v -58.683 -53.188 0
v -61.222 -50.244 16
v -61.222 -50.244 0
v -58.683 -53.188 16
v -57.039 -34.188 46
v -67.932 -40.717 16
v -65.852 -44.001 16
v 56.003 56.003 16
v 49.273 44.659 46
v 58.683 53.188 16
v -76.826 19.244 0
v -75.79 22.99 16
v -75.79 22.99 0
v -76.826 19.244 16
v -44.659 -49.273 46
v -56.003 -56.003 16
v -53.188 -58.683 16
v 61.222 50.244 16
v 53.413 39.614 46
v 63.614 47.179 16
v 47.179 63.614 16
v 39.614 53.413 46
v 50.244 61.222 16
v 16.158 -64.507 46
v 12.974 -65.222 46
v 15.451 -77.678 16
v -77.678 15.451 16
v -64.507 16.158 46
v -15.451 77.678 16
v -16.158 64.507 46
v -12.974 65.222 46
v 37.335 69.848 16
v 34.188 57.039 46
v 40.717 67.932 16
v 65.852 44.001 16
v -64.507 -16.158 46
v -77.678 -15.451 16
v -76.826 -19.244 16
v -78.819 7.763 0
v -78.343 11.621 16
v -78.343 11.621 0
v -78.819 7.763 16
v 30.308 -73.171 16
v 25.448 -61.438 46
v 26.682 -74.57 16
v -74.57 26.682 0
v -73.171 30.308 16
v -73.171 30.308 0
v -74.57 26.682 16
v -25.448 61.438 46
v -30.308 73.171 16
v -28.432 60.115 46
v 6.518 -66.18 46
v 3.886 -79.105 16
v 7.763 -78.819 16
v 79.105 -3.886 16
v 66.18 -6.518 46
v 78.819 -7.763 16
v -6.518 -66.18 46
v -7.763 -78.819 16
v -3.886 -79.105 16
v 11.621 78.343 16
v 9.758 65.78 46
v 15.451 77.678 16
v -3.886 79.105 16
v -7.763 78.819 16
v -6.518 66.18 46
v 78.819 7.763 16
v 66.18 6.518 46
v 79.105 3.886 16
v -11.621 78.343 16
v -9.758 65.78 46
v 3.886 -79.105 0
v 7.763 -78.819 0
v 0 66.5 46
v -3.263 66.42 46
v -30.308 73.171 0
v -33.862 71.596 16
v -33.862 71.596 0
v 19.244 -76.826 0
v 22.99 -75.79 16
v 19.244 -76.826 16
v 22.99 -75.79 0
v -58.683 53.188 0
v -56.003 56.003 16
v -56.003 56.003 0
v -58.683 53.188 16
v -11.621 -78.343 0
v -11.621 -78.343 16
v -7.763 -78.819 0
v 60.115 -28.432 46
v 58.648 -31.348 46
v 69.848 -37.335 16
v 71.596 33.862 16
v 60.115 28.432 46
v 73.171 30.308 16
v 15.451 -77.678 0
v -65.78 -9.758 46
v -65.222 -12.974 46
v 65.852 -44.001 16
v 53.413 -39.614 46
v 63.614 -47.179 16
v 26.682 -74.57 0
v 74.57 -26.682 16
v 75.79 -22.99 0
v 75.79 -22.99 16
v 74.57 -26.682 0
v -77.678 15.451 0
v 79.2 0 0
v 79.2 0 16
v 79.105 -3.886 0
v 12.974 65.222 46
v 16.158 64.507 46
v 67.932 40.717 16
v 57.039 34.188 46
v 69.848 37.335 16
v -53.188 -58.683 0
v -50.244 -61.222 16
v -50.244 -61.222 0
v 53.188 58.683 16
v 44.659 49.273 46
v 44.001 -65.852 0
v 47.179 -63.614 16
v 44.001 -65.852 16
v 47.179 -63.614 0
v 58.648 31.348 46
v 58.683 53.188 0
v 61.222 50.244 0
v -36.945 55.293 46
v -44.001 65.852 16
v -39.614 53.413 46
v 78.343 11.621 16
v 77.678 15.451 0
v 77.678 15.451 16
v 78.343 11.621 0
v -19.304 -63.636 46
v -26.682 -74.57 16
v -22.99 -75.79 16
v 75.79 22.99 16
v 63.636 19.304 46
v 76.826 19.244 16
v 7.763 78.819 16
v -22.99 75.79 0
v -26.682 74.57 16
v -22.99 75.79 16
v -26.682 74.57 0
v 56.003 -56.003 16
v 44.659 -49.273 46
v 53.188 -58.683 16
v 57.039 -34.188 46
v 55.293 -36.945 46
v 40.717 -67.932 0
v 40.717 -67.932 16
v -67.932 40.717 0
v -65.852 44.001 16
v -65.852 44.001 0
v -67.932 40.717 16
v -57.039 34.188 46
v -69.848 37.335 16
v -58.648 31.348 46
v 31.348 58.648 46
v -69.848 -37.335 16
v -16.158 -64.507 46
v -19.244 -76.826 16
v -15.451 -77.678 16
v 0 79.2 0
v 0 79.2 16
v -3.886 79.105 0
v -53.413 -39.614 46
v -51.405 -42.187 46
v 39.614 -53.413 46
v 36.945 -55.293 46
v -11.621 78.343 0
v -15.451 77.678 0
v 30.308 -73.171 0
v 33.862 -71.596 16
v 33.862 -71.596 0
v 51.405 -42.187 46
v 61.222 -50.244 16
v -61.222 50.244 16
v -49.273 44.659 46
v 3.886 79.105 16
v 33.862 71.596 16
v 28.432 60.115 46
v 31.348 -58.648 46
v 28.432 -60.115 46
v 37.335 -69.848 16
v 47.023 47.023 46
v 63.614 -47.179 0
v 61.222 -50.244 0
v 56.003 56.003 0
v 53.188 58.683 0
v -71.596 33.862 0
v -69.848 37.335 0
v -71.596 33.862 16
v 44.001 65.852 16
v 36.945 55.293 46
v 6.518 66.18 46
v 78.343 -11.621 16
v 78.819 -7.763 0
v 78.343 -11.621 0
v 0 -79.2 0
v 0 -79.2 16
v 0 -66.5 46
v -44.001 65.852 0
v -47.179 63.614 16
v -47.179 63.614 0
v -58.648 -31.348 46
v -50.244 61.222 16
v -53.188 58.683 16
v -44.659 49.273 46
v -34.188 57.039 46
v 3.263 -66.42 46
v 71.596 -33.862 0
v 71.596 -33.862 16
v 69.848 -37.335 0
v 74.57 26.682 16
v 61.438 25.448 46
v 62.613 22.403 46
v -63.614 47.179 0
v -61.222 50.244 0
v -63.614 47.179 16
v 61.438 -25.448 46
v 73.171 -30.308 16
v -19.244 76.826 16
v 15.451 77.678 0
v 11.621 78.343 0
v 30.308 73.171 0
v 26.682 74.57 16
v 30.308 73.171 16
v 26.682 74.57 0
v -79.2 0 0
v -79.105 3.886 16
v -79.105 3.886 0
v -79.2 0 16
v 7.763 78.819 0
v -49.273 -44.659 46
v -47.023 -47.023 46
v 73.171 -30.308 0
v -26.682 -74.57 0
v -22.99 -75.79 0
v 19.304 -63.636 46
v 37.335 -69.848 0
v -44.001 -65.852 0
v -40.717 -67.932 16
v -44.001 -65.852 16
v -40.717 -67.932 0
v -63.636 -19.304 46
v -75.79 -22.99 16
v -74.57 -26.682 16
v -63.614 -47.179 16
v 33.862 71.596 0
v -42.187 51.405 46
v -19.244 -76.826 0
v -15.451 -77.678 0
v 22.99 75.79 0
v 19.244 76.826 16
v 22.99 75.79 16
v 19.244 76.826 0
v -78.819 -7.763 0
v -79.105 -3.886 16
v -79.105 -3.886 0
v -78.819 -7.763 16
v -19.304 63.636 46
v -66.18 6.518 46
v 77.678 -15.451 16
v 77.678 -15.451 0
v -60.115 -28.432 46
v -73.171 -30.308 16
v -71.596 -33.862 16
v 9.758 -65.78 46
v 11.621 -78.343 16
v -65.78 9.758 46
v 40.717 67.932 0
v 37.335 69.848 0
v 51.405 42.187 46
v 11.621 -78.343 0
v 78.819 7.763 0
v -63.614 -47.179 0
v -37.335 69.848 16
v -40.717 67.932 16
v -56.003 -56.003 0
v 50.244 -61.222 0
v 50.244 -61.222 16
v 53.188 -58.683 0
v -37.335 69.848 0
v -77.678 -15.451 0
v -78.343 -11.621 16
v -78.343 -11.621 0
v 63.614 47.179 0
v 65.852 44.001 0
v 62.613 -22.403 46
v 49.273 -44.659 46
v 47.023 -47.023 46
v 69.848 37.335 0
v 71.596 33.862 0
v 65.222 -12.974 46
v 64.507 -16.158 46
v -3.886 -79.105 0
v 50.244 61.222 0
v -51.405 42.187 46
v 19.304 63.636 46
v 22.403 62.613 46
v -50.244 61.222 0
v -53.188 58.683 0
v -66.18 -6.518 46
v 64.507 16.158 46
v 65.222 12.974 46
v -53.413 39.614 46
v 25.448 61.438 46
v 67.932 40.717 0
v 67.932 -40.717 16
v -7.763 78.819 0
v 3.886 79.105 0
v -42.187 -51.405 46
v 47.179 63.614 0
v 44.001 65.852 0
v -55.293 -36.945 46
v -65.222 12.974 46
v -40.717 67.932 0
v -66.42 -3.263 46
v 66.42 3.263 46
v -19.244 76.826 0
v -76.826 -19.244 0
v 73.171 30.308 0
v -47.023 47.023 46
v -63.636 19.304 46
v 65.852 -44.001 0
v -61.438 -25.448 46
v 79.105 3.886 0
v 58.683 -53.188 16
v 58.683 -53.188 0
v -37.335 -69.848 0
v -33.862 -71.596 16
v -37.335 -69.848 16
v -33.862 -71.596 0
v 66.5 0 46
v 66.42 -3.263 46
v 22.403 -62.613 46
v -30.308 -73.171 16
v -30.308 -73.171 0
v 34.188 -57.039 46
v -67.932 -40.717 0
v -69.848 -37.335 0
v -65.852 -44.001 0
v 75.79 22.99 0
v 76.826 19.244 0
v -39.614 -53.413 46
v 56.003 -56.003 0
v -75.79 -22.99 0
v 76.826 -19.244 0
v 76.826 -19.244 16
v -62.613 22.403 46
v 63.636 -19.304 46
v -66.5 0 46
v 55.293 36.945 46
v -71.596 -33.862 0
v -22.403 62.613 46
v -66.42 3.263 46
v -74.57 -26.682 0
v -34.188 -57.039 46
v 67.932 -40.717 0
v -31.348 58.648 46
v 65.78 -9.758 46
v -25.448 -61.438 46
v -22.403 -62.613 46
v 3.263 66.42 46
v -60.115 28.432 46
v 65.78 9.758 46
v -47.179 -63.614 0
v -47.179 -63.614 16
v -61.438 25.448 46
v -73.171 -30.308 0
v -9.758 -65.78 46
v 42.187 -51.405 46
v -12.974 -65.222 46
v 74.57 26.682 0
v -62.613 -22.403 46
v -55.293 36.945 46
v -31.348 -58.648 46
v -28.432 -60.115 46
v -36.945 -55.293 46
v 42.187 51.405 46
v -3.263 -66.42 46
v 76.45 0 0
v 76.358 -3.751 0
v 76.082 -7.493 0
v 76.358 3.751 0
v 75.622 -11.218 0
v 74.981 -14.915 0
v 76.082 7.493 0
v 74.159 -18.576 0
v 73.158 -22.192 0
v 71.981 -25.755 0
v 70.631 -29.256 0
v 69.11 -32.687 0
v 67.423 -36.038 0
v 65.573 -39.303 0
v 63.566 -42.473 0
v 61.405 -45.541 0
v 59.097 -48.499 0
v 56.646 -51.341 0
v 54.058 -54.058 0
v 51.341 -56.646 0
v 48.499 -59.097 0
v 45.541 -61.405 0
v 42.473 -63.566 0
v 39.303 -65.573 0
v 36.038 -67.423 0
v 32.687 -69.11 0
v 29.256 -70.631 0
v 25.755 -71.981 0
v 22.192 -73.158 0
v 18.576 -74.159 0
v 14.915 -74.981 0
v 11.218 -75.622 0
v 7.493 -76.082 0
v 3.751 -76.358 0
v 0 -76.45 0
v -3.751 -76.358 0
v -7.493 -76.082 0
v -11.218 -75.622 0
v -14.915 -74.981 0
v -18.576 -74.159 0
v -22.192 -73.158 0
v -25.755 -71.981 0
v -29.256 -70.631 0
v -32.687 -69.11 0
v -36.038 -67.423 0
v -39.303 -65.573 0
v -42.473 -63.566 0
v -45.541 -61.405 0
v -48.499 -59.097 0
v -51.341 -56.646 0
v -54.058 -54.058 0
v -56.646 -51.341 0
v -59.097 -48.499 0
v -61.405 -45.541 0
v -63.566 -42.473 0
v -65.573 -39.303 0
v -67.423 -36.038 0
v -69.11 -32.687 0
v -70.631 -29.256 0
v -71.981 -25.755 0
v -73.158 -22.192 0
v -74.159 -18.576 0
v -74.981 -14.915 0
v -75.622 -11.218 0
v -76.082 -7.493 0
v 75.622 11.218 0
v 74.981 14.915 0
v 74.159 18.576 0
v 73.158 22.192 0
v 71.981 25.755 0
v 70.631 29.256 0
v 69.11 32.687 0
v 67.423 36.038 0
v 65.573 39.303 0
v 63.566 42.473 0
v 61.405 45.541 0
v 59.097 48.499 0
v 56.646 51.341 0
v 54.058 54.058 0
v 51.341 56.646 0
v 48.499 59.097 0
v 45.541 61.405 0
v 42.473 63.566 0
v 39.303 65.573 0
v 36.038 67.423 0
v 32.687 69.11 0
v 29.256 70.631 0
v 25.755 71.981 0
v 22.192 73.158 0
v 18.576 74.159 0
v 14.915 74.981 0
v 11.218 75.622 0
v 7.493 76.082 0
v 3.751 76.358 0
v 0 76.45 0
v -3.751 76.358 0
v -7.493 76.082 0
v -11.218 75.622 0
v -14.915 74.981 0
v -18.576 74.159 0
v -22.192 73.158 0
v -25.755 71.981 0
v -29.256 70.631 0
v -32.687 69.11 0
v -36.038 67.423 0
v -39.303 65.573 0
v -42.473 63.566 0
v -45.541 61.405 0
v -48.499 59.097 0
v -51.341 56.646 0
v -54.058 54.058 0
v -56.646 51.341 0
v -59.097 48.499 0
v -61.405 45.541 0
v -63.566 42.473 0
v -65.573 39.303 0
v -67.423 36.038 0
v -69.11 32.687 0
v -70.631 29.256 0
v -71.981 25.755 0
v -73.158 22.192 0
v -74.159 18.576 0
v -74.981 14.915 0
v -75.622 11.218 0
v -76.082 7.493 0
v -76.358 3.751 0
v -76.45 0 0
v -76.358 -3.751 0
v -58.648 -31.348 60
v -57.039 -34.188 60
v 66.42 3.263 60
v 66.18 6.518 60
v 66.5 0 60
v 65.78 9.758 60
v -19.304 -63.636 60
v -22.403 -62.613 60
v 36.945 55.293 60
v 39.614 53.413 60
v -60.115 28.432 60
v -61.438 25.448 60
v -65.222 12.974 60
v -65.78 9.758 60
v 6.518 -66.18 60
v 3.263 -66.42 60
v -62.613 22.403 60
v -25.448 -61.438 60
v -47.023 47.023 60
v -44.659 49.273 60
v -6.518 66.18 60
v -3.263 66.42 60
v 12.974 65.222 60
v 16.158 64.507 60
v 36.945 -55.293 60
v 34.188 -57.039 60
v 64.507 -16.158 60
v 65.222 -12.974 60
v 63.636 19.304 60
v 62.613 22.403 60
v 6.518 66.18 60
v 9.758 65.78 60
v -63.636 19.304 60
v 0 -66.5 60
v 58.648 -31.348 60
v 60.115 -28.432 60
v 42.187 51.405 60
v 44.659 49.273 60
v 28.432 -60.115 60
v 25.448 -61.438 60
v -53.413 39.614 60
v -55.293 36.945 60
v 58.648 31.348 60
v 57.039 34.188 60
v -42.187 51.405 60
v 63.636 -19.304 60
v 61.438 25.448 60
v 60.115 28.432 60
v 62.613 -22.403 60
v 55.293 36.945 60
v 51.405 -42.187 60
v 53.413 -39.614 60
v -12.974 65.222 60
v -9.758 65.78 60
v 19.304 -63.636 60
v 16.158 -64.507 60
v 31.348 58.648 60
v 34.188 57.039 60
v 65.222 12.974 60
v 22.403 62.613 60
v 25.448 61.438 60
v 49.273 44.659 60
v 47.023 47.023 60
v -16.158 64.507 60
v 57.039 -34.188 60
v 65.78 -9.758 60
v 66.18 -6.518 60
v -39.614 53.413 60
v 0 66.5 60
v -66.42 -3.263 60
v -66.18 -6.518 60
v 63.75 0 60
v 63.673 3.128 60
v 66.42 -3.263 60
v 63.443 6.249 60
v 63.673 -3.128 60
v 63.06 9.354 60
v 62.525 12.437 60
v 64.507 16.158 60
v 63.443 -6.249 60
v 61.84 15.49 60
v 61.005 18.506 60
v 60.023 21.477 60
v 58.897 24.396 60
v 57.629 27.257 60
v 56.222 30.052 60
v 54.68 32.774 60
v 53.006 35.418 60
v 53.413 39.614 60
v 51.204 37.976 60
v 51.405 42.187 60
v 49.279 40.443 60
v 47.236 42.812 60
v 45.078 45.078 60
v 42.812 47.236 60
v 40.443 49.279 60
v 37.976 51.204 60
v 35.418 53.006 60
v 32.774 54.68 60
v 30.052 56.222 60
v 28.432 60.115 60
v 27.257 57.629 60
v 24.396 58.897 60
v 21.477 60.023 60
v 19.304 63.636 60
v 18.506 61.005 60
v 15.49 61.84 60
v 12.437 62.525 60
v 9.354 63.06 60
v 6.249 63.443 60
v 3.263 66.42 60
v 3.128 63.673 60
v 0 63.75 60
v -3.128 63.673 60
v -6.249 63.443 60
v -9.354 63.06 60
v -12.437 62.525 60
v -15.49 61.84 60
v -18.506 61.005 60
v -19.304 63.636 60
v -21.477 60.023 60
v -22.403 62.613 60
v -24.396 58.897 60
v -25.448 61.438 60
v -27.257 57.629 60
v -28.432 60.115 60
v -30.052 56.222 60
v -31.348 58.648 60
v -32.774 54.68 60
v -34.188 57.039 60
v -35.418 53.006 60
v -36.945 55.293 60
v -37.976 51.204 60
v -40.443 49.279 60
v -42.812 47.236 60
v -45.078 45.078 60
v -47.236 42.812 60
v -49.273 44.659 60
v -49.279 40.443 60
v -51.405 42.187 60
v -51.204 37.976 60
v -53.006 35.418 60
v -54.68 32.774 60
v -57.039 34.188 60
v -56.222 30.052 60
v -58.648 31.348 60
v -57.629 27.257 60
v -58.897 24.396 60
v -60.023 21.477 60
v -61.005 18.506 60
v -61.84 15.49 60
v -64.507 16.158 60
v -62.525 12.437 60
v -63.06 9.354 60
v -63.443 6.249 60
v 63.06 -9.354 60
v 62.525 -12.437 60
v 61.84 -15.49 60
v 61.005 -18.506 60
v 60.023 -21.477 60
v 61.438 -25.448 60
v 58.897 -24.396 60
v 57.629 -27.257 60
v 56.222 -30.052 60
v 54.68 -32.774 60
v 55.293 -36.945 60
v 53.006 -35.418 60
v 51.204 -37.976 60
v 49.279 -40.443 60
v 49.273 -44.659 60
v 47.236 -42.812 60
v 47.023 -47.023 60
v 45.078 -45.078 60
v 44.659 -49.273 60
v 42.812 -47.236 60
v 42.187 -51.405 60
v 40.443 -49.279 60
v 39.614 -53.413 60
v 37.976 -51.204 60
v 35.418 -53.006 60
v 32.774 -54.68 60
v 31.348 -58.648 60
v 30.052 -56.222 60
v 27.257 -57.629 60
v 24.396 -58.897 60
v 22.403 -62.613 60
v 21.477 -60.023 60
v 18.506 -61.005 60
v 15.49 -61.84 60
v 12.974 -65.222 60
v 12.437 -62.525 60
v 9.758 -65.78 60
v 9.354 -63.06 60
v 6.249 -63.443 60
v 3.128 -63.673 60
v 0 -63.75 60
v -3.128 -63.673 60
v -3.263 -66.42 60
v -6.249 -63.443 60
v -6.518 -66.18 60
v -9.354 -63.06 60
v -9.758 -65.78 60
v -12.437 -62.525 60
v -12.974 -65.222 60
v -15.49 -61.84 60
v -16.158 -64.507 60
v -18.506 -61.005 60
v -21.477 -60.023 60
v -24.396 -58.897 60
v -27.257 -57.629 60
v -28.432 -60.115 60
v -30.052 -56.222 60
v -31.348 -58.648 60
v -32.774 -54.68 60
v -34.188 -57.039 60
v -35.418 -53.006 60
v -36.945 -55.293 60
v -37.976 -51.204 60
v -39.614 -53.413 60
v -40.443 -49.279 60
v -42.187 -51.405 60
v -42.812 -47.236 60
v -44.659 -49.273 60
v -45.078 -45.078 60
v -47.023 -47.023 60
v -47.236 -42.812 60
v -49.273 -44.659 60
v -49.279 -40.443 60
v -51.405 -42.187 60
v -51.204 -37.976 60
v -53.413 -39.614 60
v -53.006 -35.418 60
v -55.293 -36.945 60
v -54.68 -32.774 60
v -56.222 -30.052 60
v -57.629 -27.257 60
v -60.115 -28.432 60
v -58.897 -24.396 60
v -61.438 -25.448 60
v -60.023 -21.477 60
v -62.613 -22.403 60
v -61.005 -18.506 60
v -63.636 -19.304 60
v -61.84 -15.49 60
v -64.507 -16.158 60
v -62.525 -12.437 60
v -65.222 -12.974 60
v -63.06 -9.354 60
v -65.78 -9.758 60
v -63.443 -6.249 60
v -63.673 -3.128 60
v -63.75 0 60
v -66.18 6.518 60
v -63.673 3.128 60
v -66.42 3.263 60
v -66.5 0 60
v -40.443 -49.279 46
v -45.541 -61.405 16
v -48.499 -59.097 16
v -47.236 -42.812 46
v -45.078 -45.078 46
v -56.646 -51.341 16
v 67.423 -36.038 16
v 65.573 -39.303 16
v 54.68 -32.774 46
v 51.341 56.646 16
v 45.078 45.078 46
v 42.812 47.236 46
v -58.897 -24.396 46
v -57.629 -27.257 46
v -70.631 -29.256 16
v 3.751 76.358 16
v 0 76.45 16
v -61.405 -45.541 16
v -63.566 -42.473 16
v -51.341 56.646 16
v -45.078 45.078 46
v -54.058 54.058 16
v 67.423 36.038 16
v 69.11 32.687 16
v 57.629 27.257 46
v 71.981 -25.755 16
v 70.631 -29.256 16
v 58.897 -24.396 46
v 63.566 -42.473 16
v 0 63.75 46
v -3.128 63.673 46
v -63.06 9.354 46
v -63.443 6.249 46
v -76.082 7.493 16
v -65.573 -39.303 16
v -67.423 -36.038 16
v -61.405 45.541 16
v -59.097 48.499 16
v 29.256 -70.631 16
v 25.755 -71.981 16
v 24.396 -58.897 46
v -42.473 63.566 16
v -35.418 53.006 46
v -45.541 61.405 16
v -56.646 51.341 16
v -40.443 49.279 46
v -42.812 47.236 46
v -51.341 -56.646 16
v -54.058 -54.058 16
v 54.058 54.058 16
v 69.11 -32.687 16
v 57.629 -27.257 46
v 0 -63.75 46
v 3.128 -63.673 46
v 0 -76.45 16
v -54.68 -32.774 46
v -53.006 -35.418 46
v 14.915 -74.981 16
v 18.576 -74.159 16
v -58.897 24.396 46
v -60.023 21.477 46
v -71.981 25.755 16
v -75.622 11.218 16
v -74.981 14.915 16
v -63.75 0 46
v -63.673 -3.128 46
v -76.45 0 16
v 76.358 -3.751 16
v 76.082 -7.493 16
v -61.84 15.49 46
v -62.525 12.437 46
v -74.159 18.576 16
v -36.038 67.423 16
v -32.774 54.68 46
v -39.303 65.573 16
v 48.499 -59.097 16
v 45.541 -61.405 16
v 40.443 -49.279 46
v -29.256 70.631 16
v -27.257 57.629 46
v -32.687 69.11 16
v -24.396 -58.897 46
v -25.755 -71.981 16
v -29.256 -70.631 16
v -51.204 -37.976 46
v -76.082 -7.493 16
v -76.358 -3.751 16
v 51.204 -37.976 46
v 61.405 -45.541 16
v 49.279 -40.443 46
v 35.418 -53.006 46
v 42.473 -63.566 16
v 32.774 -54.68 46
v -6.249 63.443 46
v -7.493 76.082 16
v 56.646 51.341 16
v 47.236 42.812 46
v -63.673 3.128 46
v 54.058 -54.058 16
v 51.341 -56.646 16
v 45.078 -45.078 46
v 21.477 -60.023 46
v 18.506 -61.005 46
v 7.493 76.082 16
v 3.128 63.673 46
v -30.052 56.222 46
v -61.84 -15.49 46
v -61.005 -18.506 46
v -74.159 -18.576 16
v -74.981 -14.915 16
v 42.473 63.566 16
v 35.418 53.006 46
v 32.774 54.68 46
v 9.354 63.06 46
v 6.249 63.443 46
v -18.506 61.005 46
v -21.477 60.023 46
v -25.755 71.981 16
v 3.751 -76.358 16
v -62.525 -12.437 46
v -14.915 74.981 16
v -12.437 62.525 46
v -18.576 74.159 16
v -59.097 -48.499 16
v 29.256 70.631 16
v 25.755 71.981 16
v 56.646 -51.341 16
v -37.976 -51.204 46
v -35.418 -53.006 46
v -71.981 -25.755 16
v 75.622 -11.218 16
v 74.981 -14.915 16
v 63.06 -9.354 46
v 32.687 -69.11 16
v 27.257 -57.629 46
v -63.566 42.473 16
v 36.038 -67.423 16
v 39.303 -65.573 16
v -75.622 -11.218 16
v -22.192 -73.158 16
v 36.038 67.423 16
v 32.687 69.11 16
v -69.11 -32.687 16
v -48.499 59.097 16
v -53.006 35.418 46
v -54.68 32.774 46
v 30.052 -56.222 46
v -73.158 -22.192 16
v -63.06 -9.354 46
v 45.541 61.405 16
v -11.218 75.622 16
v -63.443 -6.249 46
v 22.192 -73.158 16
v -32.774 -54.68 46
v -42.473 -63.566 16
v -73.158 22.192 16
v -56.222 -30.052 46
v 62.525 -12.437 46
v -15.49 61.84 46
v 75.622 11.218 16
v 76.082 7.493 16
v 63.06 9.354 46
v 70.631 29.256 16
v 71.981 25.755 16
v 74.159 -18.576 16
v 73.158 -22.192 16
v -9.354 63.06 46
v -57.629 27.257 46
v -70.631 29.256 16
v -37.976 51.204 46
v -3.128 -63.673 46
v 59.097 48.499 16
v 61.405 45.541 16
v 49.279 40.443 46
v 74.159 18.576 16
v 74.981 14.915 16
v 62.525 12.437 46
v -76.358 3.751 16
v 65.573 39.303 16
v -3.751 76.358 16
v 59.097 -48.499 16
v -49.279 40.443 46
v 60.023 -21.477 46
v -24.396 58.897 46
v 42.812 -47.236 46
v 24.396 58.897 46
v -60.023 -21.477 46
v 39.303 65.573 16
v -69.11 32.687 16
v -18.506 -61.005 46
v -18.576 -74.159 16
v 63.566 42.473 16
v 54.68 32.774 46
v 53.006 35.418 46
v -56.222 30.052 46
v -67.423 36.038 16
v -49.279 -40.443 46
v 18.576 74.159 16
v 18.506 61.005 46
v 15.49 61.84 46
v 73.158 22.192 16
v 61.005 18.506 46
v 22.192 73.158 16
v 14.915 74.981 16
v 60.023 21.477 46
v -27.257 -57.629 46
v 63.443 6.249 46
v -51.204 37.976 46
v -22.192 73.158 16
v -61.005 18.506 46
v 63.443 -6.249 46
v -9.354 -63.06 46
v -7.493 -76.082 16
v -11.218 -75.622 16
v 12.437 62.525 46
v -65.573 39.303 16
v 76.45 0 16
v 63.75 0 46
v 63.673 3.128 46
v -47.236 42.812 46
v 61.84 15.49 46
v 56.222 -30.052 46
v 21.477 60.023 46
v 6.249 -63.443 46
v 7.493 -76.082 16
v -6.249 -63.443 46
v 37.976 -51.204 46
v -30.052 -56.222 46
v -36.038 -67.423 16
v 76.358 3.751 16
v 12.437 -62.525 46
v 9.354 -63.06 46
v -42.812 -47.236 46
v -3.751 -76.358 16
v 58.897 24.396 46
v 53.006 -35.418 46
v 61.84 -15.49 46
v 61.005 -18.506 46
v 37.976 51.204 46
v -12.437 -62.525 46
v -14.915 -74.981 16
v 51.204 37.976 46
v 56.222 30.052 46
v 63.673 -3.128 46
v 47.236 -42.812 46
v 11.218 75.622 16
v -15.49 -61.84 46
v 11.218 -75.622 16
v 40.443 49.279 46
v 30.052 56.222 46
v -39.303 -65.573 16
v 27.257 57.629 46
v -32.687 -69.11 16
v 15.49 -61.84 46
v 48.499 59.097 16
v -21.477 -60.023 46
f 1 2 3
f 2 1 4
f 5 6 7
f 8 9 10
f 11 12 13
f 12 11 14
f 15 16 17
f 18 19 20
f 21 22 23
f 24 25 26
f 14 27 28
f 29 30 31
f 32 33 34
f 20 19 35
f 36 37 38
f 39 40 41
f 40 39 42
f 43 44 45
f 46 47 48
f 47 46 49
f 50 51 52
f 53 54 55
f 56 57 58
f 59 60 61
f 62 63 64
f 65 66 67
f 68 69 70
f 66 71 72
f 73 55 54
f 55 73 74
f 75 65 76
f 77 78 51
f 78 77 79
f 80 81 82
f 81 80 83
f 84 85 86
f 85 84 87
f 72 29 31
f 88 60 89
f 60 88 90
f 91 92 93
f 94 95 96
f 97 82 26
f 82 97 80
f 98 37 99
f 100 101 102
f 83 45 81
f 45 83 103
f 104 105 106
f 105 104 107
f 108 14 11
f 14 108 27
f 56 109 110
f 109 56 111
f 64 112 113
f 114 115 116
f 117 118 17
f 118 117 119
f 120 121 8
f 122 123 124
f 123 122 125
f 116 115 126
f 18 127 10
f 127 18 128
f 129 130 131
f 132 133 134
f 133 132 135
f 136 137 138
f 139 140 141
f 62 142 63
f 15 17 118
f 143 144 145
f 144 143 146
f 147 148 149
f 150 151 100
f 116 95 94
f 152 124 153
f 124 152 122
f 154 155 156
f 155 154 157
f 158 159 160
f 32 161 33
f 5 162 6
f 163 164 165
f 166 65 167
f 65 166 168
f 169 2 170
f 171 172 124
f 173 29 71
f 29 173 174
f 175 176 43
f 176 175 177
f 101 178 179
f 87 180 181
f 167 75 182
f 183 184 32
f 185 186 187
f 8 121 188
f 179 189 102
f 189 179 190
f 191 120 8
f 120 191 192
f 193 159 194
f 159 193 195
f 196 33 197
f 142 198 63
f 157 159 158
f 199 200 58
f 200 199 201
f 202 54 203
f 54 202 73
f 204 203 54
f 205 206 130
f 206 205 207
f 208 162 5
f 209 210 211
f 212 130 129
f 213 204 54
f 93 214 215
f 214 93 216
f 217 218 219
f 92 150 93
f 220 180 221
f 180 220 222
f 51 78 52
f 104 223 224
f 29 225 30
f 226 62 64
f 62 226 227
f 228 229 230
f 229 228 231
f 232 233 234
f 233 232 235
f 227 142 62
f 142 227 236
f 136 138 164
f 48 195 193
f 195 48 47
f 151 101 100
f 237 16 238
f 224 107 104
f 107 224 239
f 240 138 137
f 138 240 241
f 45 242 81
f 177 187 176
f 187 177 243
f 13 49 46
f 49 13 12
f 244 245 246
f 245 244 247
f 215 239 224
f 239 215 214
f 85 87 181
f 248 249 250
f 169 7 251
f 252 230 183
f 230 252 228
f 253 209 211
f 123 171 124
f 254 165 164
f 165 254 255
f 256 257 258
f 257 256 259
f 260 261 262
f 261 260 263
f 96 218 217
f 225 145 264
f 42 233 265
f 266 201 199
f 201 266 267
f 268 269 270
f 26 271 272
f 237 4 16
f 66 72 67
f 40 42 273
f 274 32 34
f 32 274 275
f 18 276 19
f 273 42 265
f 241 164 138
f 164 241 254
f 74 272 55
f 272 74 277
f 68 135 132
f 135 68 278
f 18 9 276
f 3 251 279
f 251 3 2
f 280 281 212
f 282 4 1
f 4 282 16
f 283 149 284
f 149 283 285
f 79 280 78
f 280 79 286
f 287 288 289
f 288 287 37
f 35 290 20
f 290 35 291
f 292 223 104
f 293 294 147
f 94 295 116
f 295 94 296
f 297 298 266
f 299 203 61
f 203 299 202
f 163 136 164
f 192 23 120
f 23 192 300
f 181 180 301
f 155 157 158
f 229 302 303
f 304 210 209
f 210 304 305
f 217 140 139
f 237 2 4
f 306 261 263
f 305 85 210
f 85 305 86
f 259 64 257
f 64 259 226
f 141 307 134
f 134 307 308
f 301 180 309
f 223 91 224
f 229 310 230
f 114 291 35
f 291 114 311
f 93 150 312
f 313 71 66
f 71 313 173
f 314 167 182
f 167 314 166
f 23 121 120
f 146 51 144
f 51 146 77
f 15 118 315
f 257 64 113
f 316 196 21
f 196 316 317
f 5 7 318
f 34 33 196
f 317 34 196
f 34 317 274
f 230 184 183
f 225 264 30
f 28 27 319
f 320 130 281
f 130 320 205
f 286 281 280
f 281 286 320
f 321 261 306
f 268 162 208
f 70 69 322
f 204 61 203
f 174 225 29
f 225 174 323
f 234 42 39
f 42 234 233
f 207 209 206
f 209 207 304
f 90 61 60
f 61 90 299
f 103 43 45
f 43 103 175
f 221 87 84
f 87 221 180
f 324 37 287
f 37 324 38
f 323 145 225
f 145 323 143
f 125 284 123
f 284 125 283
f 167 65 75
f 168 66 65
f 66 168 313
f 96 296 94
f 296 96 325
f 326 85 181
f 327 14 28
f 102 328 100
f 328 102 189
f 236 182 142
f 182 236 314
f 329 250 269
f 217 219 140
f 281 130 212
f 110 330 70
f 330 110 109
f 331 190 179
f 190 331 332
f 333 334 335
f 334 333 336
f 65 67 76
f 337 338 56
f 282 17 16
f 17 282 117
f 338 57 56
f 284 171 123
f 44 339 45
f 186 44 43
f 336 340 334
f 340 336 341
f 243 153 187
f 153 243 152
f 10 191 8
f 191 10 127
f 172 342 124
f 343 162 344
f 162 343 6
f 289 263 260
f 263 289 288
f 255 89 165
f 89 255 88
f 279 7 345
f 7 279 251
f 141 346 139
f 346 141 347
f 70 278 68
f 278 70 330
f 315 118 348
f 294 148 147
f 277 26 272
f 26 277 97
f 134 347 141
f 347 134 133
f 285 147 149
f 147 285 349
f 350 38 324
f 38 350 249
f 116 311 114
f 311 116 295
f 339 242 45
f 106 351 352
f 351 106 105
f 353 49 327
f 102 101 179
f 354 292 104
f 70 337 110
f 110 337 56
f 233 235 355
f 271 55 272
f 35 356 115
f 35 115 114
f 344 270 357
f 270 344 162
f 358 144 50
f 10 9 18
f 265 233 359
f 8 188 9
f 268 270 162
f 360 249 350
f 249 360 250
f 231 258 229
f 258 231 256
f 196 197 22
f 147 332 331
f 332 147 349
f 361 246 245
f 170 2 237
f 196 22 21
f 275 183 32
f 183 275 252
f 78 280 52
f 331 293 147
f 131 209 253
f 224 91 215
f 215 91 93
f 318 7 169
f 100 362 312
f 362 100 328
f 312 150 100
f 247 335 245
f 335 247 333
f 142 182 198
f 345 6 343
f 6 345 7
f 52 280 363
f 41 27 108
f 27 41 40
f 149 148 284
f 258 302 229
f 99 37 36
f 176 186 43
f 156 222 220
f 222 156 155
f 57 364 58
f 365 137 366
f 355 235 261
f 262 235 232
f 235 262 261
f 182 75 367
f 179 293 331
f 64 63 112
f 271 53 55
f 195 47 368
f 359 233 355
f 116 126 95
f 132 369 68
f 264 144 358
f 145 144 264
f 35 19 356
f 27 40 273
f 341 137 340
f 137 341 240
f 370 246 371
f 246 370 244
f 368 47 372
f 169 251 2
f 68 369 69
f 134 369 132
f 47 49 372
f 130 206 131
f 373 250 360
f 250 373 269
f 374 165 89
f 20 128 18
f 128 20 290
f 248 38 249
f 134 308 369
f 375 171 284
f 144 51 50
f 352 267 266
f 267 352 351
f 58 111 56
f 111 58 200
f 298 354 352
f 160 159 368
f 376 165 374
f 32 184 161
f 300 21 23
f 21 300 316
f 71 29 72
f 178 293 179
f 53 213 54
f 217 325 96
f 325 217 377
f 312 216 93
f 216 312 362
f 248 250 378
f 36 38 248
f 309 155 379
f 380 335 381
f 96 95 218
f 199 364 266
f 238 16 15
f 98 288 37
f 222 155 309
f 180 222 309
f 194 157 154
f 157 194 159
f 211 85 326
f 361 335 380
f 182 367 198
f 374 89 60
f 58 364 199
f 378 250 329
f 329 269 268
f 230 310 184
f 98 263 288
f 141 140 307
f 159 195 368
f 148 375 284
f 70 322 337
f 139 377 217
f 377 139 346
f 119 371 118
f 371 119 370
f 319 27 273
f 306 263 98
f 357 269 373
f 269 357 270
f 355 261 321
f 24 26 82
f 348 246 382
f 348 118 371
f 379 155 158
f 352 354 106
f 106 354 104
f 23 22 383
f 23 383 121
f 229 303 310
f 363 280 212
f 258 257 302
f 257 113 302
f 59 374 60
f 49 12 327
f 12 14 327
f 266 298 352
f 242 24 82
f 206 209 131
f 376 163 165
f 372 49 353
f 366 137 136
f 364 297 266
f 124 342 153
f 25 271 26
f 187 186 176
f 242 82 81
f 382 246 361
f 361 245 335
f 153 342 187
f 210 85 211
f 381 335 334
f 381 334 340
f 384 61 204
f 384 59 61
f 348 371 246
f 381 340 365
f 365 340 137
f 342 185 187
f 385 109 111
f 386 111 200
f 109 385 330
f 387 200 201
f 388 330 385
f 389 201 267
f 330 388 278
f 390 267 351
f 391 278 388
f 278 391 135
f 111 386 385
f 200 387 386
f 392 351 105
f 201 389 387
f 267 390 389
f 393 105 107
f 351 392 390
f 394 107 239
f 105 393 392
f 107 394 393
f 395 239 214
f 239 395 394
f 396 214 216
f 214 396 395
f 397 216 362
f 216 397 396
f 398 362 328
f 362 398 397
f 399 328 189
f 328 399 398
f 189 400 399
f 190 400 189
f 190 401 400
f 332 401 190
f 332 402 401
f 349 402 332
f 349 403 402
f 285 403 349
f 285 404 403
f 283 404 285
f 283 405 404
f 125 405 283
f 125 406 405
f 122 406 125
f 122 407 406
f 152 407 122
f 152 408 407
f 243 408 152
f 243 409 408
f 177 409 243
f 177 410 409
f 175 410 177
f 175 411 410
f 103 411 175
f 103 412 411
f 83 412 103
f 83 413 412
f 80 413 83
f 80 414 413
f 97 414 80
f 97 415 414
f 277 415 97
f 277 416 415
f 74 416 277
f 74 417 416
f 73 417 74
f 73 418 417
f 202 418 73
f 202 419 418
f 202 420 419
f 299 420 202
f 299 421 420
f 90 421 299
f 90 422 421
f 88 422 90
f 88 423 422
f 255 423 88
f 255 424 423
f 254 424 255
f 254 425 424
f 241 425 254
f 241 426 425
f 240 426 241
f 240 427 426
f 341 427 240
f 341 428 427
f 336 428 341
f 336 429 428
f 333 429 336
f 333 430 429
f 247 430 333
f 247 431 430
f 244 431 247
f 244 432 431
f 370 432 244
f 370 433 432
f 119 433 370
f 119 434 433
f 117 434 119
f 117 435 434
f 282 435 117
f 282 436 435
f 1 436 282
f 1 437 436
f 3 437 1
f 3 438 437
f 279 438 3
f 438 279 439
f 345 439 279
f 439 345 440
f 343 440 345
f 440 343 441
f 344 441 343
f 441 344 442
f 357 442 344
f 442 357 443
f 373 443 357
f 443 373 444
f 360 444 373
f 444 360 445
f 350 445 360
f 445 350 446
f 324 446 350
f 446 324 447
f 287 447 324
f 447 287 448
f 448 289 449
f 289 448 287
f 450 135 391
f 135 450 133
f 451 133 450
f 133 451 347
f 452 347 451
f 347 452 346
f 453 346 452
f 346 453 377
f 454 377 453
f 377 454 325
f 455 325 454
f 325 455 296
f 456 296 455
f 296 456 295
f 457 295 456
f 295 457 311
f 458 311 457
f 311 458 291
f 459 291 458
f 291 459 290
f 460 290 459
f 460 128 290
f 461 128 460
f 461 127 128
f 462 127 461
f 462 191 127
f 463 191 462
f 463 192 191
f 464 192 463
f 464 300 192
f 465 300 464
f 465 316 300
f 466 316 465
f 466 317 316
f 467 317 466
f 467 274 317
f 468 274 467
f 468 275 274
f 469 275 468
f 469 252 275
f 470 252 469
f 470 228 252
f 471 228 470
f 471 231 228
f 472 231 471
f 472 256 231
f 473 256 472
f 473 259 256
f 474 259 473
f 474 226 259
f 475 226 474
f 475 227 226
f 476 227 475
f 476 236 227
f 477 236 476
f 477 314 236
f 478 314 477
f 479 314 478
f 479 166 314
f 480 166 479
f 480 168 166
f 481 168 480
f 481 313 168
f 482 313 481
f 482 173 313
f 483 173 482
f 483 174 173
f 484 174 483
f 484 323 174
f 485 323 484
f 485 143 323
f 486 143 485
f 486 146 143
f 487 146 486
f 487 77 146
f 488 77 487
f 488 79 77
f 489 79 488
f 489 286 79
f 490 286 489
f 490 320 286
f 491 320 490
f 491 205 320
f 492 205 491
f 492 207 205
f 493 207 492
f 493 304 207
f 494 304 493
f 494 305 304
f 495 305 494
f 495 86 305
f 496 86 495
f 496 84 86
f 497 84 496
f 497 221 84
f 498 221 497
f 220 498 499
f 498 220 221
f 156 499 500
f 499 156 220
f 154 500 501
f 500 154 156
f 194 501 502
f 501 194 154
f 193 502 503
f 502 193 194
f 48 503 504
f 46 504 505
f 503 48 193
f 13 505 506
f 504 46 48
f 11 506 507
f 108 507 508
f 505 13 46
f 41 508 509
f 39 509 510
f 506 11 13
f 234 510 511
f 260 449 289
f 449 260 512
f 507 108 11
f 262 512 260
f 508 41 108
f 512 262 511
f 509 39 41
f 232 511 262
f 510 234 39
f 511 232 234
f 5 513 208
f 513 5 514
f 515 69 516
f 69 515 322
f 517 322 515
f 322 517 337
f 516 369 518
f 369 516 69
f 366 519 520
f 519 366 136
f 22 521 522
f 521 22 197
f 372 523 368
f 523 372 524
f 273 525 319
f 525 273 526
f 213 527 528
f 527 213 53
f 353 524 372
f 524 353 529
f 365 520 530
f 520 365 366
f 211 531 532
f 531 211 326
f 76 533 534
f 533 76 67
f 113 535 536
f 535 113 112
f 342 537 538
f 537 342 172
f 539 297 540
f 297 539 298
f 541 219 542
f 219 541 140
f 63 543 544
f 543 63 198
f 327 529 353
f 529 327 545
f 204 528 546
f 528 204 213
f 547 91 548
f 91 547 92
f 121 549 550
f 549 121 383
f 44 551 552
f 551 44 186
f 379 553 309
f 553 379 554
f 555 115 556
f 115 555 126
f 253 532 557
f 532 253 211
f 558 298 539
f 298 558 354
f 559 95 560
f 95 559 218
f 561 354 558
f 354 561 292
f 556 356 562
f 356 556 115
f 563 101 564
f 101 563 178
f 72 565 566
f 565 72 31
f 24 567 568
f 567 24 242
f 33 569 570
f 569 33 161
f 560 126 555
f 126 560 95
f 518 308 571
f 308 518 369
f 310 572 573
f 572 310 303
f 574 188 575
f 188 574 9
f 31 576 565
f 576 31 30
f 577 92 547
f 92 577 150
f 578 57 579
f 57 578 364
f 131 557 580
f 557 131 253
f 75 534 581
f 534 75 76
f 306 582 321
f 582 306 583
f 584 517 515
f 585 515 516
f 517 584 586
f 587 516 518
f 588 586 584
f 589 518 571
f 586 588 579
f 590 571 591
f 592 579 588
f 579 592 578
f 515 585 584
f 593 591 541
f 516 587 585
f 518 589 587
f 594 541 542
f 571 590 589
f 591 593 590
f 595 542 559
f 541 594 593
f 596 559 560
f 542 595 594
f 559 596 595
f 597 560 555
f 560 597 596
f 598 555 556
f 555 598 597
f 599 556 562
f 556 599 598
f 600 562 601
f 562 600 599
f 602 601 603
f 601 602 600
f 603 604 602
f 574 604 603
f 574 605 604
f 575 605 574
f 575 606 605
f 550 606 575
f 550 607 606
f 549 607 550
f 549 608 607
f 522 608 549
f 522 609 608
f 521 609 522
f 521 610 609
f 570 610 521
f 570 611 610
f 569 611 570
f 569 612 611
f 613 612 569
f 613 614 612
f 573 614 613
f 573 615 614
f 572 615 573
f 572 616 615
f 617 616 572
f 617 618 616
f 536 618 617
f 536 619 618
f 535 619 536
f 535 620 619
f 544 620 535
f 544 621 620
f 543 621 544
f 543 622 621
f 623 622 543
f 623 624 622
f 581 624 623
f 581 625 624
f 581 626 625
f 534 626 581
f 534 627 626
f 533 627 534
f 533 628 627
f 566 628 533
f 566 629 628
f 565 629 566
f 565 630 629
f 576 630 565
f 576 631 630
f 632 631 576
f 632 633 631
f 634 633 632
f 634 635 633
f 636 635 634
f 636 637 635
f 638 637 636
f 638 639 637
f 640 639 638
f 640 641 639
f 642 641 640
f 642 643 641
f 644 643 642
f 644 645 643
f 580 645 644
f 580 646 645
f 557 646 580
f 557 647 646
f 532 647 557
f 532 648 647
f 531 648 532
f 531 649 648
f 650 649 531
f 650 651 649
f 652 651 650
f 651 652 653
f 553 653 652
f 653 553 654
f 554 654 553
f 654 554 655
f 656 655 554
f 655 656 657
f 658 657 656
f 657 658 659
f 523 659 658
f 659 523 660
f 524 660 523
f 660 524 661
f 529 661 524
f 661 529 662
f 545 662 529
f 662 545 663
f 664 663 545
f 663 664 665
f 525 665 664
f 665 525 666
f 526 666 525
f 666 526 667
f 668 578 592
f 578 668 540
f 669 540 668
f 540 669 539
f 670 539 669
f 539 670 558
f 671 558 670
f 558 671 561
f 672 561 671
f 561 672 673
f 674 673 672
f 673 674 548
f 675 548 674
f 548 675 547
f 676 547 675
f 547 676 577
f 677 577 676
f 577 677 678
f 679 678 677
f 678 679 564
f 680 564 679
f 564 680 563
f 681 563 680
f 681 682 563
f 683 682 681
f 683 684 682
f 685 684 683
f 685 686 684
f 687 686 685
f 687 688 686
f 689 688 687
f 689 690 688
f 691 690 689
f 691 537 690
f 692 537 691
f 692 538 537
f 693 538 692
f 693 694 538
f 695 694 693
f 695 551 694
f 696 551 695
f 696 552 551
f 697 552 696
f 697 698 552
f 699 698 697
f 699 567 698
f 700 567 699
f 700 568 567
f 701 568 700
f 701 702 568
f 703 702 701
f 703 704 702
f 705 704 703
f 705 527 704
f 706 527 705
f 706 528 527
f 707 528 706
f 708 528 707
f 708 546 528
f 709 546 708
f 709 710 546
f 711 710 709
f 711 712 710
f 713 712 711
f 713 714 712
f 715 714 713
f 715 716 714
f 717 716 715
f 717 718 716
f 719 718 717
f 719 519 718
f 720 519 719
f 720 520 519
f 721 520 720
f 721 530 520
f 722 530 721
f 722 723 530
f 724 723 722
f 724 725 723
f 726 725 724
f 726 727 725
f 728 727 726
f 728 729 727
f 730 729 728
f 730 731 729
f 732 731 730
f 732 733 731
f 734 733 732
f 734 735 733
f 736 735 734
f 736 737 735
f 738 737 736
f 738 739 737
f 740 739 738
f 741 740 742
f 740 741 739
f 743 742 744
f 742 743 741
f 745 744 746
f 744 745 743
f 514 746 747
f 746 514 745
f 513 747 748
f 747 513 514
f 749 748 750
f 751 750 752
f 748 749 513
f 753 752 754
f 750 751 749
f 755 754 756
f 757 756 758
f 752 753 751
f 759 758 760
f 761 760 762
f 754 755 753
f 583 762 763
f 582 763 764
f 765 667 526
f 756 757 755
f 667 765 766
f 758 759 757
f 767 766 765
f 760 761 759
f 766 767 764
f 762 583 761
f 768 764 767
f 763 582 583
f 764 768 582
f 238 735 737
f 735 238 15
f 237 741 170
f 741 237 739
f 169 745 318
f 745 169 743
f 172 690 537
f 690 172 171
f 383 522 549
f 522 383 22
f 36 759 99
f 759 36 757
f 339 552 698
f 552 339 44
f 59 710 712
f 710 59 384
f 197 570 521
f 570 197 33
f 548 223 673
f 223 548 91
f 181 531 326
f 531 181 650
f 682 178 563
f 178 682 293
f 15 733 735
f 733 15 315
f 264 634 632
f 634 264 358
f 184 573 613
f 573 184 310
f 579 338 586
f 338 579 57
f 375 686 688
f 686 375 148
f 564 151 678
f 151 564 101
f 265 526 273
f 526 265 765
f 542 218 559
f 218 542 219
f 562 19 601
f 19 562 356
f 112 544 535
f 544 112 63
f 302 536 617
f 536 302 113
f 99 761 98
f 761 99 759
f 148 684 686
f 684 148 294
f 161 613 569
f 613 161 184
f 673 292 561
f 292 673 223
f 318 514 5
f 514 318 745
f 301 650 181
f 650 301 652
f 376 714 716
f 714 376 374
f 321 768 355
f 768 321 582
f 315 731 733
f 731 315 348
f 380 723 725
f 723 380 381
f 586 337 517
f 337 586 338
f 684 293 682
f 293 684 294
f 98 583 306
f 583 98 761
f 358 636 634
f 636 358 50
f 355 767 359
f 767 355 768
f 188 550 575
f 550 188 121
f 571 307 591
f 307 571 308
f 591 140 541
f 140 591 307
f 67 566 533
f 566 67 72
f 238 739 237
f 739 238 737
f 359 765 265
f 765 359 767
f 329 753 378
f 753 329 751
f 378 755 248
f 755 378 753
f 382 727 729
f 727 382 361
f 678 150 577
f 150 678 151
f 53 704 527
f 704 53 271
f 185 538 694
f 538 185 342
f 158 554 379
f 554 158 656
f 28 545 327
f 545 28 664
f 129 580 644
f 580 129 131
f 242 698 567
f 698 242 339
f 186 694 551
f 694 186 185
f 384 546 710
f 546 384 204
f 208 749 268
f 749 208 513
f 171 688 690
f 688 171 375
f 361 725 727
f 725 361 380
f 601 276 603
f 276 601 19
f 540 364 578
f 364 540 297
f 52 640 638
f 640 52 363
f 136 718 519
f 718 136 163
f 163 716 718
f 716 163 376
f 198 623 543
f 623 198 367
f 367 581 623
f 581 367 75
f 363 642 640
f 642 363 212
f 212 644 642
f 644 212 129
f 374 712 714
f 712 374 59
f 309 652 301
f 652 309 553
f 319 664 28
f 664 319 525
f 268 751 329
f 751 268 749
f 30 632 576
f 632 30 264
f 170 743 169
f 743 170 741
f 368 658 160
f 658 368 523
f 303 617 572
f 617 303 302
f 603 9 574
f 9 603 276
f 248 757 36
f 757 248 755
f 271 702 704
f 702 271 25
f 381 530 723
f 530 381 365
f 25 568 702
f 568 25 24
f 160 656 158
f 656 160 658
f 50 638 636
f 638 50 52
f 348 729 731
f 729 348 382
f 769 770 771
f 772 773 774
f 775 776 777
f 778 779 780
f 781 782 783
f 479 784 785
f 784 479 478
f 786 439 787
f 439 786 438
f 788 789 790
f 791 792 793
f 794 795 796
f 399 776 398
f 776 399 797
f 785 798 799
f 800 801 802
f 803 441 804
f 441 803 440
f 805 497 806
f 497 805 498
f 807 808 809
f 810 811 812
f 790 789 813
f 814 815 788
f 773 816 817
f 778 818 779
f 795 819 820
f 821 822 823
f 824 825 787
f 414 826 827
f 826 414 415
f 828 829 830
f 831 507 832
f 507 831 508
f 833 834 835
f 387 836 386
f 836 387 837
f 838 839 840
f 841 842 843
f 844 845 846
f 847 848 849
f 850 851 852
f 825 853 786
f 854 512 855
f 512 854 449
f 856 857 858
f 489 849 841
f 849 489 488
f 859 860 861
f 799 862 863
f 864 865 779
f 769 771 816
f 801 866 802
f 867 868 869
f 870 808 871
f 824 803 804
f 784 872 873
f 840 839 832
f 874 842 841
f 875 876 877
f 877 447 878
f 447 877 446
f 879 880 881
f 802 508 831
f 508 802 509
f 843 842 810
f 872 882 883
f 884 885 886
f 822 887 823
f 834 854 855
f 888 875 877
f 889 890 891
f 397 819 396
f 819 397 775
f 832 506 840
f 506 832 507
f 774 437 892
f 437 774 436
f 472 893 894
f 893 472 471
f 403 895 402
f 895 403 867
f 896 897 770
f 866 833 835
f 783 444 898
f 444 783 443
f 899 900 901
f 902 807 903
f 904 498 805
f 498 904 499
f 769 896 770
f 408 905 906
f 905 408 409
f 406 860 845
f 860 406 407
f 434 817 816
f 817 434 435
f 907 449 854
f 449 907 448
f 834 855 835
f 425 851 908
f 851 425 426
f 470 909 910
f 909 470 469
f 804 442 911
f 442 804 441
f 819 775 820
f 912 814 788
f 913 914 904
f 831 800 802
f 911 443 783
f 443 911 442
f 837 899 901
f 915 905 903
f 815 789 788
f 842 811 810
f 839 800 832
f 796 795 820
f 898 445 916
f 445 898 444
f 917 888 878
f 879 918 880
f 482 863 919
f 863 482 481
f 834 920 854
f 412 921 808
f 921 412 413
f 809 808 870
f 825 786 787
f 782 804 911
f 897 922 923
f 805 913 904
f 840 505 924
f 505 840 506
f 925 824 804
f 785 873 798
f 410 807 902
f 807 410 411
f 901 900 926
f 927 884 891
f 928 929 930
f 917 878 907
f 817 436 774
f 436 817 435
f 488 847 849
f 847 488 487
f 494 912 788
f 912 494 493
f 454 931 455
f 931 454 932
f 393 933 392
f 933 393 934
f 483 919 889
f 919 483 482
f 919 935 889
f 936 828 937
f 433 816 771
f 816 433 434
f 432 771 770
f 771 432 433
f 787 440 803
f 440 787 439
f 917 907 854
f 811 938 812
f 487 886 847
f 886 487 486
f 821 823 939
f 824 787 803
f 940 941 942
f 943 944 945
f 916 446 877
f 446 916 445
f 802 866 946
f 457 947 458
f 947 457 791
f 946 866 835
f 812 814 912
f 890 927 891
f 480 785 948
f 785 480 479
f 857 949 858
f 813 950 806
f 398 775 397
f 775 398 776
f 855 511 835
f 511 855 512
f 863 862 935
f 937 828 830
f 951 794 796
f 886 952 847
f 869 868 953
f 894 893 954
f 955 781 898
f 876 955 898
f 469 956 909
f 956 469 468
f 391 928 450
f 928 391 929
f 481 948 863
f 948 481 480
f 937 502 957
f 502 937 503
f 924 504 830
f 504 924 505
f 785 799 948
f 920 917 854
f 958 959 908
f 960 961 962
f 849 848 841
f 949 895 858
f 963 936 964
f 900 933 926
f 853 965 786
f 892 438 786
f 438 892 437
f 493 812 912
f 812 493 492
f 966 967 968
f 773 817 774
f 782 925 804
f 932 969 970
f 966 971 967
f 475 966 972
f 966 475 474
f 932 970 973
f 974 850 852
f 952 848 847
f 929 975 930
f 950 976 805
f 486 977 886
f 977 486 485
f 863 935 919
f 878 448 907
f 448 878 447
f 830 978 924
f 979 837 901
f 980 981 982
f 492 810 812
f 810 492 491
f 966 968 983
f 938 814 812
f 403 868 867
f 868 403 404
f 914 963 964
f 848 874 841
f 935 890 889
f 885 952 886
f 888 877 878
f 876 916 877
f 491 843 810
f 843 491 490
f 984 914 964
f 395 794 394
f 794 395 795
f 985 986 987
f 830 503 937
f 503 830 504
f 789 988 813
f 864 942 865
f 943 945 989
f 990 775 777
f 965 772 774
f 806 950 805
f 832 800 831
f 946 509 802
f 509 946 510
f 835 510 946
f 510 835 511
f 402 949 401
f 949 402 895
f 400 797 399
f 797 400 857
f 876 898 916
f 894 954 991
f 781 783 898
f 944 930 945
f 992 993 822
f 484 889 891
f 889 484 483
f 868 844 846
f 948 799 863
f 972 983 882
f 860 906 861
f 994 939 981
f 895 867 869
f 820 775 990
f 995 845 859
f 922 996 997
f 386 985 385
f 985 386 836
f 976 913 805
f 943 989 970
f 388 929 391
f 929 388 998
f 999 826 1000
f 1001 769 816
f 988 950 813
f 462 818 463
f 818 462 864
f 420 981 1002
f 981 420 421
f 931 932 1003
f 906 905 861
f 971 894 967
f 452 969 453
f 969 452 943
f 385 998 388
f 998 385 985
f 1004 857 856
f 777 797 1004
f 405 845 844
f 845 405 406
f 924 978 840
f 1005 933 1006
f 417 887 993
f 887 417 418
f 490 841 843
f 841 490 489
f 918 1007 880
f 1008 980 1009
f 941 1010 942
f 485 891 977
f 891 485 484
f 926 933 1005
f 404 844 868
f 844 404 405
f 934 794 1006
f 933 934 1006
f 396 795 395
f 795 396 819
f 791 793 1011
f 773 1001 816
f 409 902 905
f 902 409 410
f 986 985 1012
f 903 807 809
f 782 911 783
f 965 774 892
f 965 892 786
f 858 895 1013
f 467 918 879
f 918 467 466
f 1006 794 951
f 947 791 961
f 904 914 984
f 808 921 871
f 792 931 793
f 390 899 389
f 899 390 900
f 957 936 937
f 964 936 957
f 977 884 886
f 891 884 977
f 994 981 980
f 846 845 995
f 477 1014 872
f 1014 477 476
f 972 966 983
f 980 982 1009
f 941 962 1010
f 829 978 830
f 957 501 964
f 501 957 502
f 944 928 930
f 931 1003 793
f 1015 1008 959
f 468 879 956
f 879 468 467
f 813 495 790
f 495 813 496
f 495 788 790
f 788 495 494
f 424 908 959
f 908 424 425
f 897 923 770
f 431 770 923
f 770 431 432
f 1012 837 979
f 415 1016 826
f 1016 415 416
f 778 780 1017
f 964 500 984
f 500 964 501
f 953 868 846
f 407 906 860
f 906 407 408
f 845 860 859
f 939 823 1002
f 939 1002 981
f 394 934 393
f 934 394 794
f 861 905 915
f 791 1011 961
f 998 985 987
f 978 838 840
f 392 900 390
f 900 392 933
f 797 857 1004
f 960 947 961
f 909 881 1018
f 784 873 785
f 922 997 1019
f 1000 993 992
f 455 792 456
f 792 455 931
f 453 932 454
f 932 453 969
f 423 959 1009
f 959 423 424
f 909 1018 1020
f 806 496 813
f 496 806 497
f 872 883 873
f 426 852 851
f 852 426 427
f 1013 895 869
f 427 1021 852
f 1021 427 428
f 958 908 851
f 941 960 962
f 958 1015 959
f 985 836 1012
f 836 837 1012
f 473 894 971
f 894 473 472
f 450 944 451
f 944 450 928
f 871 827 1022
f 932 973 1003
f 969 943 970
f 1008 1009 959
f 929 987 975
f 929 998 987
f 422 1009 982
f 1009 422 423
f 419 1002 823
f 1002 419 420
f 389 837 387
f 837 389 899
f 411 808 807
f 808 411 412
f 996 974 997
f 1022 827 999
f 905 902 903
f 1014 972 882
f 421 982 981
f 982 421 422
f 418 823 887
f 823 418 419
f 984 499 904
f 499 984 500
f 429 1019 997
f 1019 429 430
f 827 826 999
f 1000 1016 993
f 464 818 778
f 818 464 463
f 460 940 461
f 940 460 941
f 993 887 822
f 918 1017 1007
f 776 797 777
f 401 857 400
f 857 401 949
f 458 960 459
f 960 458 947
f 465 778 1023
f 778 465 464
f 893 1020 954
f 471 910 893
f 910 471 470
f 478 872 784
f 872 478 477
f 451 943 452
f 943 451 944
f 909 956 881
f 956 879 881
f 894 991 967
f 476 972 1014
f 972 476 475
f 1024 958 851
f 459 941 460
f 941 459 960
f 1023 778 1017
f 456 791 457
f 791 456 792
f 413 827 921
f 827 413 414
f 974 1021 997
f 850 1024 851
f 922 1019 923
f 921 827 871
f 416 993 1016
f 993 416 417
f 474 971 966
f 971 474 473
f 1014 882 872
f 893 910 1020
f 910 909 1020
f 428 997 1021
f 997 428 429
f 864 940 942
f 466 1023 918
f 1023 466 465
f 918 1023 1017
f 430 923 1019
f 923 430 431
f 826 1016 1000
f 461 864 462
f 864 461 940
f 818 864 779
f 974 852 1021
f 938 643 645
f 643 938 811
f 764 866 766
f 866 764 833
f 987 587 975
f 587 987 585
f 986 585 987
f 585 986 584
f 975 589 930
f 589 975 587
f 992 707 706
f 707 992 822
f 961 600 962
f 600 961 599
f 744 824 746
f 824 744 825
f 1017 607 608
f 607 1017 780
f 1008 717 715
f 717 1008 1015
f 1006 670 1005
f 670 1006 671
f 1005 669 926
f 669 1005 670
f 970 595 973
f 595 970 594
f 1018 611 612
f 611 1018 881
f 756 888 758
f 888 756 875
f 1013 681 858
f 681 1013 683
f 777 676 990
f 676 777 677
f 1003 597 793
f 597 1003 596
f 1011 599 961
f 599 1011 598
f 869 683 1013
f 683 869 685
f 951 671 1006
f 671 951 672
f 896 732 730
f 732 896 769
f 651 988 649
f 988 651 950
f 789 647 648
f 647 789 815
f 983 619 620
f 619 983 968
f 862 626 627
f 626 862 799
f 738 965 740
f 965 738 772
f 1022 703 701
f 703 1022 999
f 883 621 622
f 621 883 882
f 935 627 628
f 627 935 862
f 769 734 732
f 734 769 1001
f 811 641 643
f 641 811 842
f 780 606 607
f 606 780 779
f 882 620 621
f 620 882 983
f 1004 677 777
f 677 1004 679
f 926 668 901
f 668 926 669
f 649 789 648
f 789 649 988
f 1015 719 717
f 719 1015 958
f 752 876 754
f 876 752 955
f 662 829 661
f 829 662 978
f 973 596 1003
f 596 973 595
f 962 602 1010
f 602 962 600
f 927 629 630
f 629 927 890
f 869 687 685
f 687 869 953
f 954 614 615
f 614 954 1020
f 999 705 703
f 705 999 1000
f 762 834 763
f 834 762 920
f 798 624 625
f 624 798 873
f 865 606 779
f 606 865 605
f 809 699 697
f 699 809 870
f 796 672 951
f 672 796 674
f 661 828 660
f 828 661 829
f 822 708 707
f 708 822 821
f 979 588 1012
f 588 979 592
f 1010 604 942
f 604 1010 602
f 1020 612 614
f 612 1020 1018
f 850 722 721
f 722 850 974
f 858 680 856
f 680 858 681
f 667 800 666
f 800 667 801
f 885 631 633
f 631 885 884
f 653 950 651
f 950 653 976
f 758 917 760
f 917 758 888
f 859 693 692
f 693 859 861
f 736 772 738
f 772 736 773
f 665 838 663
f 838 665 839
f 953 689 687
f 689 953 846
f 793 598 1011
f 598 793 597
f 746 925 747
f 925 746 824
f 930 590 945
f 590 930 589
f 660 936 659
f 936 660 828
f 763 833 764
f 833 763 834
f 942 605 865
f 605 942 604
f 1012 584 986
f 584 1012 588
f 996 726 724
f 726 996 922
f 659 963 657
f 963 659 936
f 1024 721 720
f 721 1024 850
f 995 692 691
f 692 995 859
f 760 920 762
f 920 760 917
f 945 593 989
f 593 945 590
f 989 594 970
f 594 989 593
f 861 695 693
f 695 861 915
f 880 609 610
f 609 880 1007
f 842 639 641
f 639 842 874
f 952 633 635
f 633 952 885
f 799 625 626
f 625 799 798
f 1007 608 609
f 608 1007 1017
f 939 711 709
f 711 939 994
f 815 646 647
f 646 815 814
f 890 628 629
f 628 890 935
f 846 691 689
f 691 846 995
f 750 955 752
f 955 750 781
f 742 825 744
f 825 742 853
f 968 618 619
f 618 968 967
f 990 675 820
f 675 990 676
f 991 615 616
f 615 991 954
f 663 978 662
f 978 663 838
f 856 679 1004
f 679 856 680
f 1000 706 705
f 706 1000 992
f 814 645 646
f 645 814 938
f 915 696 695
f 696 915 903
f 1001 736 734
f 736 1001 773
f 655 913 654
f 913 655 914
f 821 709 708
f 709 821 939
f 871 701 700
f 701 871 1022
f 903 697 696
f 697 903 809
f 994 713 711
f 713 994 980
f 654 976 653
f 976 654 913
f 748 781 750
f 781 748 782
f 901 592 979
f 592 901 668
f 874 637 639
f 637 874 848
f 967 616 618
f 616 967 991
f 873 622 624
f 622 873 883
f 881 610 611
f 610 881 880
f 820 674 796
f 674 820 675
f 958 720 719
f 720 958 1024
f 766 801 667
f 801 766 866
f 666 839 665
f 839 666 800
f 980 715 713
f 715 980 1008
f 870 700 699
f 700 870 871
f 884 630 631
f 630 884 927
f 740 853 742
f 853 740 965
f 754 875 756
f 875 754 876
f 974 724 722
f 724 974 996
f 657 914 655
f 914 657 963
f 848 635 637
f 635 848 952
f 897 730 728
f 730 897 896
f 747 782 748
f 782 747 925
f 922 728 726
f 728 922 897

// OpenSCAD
$fn = 128;  // smoothness


d_large = 6;           // 6" inner
d_small = 5;           // 5" inner
wall = 3;              // wall thickness
height = 30;           // taper section height (~23° from vertical, still support-free)
lip_length = 15;       // straight sleeve length on both ends
inner_offset = 0.5;    // clearance for hose slip-on

// Computed
dd_large = d_large*25.4;
dd_small = d_small*25.4;

// === MAIN REDUCER BODY ===
module duct_reducer_with_lips() {
    difference() {
        union() {
            // Main tapered reducer
            hull() {
                translate([0, 0, lip_length])
                    cylinder(d=dd_large + 2*wall, h=1);
                translate([0, 0, lip_length + height])
                    cylinder(d=dd_small + 2*wall, h=1);
            }

            // Large-end lip
            translate([0, 0, 0])
                cylinder(d=dd_large + 2*wall, h=lip_length);

            // Small-end lip
            translate([0, 0, lip_length + height])
                cylinder(d=dd_small + 2*wall, h=lip_length);
        }

        // Hollow air path (offset for hose slip-on)
        union() {
            // Main taper
            hull() {
                translate([0, 0, lip_length])
                    cylinder(d=dd_large + inner_offset, h=1);
                translate([0, 0, lip_length + height])
                    cylinder(d=dd_small + inner_offset, h=1);
            }

            // Large-end hollow (lip section)
            translate([0, 0, 0-0.01])
                cylinder(d=dd_large + inner_offset, h=lip_length + 0.02);

            // Small-end hollow (lip section)
            translate([0, 0, lip_length + height])
                cylinder(d=dd_small + inner_offset, h=lip_length + 0.02);
        }
    }
}

// === RENDER ===
duct_reducer_with_lips();
